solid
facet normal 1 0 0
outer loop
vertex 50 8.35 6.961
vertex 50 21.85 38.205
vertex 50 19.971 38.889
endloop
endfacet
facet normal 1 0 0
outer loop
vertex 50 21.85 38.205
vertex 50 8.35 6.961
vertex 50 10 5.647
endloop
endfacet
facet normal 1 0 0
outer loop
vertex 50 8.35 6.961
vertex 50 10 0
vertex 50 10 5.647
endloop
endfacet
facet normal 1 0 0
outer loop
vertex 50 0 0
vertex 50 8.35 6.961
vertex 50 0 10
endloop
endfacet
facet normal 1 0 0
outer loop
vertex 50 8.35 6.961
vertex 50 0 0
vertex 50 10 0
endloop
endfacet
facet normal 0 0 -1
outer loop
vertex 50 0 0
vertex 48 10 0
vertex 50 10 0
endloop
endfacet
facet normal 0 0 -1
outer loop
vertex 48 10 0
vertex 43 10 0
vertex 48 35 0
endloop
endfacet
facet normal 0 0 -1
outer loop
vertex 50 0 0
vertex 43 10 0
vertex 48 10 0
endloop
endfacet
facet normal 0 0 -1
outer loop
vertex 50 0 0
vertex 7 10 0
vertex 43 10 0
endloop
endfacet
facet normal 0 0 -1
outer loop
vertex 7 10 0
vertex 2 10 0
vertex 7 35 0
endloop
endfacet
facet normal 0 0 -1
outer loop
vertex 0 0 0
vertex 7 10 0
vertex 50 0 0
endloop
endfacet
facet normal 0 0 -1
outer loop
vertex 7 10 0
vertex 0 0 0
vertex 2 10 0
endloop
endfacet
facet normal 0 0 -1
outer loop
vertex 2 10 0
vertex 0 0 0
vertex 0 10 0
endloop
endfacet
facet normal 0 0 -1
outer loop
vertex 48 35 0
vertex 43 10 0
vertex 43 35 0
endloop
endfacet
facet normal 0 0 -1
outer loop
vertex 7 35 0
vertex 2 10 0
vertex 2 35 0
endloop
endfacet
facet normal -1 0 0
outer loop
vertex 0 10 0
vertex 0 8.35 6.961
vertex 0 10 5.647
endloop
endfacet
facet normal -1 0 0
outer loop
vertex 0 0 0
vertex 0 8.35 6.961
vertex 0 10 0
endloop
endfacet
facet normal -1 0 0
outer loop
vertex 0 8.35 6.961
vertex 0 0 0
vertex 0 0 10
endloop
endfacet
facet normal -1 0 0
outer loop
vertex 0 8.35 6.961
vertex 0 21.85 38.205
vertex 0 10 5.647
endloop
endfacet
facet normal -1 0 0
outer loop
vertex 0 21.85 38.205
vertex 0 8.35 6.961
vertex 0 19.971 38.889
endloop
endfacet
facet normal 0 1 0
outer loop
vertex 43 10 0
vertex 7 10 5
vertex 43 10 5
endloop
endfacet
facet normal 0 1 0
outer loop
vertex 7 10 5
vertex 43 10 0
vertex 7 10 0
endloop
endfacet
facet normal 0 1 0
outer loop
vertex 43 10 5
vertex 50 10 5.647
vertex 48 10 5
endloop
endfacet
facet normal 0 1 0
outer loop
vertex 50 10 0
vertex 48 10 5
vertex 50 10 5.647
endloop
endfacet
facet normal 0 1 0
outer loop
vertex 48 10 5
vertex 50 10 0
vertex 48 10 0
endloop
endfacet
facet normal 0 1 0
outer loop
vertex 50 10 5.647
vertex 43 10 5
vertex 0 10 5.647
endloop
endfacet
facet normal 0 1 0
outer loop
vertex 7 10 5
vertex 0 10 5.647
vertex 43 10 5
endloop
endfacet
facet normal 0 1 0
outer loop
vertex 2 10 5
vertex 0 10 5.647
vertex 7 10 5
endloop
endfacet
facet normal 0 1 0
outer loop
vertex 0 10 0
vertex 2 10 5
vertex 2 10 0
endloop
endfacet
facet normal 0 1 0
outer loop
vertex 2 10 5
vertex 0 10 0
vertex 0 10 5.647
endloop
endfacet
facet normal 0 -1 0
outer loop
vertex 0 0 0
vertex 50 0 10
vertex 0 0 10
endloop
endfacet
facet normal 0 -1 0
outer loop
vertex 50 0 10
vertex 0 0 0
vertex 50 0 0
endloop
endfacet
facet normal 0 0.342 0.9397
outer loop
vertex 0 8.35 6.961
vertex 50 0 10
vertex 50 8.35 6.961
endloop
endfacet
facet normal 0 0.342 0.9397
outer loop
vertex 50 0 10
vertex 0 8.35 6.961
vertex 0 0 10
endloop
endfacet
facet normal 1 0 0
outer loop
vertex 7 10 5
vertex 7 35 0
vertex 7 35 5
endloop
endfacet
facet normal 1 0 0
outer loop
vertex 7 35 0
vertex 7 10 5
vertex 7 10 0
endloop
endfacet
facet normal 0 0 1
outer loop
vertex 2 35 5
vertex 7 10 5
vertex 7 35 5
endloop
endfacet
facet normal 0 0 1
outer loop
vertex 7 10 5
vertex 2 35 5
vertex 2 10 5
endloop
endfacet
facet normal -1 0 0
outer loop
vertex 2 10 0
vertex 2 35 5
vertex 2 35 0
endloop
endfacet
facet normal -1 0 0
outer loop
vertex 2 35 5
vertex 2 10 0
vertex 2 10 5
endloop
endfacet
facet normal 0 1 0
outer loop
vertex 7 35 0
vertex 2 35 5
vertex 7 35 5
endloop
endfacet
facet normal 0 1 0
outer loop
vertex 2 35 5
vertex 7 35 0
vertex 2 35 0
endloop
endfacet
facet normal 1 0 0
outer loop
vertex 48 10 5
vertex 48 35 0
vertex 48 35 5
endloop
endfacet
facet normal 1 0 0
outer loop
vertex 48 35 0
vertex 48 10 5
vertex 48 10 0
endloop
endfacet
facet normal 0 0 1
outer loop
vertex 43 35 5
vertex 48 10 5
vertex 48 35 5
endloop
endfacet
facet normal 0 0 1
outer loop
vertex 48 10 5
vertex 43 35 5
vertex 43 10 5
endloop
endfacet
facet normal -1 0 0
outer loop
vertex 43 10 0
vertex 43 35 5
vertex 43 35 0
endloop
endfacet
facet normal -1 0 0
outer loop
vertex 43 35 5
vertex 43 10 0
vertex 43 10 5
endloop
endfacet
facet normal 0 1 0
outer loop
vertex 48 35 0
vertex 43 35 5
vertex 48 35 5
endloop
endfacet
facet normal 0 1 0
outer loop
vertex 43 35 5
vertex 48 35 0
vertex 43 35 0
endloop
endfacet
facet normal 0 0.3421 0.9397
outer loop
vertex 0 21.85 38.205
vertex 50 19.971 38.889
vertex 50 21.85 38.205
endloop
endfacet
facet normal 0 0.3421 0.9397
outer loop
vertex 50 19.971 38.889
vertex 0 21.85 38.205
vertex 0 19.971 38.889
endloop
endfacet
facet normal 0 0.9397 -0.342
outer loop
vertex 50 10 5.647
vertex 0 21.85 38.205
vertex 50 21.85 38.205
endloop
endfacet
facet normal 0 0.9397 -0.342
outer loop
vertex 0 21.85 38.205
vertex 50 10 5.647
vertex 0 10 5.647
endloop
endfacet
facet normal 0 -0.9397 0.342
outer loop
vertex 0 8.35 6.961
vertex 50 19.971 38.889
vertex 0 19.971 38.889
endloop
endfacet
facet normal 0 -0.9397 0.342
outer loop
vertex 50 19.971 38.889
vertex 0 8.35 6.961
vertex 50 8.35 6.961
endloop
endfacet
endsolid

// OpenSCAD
w=50;

difference() {
    cube([w,10,10]);
    translate([-0.01,0,10]) rotate([-20,0,0]) cube([w+0.02,20,10]);
}
translate([2, 10, 0]) cube([5,25,5]);
translate([w-7,10,0]) cube([5,25,5]);

translate([0,8,6]) rotate([-20,0,0]) cube([w, 2, 35]);
